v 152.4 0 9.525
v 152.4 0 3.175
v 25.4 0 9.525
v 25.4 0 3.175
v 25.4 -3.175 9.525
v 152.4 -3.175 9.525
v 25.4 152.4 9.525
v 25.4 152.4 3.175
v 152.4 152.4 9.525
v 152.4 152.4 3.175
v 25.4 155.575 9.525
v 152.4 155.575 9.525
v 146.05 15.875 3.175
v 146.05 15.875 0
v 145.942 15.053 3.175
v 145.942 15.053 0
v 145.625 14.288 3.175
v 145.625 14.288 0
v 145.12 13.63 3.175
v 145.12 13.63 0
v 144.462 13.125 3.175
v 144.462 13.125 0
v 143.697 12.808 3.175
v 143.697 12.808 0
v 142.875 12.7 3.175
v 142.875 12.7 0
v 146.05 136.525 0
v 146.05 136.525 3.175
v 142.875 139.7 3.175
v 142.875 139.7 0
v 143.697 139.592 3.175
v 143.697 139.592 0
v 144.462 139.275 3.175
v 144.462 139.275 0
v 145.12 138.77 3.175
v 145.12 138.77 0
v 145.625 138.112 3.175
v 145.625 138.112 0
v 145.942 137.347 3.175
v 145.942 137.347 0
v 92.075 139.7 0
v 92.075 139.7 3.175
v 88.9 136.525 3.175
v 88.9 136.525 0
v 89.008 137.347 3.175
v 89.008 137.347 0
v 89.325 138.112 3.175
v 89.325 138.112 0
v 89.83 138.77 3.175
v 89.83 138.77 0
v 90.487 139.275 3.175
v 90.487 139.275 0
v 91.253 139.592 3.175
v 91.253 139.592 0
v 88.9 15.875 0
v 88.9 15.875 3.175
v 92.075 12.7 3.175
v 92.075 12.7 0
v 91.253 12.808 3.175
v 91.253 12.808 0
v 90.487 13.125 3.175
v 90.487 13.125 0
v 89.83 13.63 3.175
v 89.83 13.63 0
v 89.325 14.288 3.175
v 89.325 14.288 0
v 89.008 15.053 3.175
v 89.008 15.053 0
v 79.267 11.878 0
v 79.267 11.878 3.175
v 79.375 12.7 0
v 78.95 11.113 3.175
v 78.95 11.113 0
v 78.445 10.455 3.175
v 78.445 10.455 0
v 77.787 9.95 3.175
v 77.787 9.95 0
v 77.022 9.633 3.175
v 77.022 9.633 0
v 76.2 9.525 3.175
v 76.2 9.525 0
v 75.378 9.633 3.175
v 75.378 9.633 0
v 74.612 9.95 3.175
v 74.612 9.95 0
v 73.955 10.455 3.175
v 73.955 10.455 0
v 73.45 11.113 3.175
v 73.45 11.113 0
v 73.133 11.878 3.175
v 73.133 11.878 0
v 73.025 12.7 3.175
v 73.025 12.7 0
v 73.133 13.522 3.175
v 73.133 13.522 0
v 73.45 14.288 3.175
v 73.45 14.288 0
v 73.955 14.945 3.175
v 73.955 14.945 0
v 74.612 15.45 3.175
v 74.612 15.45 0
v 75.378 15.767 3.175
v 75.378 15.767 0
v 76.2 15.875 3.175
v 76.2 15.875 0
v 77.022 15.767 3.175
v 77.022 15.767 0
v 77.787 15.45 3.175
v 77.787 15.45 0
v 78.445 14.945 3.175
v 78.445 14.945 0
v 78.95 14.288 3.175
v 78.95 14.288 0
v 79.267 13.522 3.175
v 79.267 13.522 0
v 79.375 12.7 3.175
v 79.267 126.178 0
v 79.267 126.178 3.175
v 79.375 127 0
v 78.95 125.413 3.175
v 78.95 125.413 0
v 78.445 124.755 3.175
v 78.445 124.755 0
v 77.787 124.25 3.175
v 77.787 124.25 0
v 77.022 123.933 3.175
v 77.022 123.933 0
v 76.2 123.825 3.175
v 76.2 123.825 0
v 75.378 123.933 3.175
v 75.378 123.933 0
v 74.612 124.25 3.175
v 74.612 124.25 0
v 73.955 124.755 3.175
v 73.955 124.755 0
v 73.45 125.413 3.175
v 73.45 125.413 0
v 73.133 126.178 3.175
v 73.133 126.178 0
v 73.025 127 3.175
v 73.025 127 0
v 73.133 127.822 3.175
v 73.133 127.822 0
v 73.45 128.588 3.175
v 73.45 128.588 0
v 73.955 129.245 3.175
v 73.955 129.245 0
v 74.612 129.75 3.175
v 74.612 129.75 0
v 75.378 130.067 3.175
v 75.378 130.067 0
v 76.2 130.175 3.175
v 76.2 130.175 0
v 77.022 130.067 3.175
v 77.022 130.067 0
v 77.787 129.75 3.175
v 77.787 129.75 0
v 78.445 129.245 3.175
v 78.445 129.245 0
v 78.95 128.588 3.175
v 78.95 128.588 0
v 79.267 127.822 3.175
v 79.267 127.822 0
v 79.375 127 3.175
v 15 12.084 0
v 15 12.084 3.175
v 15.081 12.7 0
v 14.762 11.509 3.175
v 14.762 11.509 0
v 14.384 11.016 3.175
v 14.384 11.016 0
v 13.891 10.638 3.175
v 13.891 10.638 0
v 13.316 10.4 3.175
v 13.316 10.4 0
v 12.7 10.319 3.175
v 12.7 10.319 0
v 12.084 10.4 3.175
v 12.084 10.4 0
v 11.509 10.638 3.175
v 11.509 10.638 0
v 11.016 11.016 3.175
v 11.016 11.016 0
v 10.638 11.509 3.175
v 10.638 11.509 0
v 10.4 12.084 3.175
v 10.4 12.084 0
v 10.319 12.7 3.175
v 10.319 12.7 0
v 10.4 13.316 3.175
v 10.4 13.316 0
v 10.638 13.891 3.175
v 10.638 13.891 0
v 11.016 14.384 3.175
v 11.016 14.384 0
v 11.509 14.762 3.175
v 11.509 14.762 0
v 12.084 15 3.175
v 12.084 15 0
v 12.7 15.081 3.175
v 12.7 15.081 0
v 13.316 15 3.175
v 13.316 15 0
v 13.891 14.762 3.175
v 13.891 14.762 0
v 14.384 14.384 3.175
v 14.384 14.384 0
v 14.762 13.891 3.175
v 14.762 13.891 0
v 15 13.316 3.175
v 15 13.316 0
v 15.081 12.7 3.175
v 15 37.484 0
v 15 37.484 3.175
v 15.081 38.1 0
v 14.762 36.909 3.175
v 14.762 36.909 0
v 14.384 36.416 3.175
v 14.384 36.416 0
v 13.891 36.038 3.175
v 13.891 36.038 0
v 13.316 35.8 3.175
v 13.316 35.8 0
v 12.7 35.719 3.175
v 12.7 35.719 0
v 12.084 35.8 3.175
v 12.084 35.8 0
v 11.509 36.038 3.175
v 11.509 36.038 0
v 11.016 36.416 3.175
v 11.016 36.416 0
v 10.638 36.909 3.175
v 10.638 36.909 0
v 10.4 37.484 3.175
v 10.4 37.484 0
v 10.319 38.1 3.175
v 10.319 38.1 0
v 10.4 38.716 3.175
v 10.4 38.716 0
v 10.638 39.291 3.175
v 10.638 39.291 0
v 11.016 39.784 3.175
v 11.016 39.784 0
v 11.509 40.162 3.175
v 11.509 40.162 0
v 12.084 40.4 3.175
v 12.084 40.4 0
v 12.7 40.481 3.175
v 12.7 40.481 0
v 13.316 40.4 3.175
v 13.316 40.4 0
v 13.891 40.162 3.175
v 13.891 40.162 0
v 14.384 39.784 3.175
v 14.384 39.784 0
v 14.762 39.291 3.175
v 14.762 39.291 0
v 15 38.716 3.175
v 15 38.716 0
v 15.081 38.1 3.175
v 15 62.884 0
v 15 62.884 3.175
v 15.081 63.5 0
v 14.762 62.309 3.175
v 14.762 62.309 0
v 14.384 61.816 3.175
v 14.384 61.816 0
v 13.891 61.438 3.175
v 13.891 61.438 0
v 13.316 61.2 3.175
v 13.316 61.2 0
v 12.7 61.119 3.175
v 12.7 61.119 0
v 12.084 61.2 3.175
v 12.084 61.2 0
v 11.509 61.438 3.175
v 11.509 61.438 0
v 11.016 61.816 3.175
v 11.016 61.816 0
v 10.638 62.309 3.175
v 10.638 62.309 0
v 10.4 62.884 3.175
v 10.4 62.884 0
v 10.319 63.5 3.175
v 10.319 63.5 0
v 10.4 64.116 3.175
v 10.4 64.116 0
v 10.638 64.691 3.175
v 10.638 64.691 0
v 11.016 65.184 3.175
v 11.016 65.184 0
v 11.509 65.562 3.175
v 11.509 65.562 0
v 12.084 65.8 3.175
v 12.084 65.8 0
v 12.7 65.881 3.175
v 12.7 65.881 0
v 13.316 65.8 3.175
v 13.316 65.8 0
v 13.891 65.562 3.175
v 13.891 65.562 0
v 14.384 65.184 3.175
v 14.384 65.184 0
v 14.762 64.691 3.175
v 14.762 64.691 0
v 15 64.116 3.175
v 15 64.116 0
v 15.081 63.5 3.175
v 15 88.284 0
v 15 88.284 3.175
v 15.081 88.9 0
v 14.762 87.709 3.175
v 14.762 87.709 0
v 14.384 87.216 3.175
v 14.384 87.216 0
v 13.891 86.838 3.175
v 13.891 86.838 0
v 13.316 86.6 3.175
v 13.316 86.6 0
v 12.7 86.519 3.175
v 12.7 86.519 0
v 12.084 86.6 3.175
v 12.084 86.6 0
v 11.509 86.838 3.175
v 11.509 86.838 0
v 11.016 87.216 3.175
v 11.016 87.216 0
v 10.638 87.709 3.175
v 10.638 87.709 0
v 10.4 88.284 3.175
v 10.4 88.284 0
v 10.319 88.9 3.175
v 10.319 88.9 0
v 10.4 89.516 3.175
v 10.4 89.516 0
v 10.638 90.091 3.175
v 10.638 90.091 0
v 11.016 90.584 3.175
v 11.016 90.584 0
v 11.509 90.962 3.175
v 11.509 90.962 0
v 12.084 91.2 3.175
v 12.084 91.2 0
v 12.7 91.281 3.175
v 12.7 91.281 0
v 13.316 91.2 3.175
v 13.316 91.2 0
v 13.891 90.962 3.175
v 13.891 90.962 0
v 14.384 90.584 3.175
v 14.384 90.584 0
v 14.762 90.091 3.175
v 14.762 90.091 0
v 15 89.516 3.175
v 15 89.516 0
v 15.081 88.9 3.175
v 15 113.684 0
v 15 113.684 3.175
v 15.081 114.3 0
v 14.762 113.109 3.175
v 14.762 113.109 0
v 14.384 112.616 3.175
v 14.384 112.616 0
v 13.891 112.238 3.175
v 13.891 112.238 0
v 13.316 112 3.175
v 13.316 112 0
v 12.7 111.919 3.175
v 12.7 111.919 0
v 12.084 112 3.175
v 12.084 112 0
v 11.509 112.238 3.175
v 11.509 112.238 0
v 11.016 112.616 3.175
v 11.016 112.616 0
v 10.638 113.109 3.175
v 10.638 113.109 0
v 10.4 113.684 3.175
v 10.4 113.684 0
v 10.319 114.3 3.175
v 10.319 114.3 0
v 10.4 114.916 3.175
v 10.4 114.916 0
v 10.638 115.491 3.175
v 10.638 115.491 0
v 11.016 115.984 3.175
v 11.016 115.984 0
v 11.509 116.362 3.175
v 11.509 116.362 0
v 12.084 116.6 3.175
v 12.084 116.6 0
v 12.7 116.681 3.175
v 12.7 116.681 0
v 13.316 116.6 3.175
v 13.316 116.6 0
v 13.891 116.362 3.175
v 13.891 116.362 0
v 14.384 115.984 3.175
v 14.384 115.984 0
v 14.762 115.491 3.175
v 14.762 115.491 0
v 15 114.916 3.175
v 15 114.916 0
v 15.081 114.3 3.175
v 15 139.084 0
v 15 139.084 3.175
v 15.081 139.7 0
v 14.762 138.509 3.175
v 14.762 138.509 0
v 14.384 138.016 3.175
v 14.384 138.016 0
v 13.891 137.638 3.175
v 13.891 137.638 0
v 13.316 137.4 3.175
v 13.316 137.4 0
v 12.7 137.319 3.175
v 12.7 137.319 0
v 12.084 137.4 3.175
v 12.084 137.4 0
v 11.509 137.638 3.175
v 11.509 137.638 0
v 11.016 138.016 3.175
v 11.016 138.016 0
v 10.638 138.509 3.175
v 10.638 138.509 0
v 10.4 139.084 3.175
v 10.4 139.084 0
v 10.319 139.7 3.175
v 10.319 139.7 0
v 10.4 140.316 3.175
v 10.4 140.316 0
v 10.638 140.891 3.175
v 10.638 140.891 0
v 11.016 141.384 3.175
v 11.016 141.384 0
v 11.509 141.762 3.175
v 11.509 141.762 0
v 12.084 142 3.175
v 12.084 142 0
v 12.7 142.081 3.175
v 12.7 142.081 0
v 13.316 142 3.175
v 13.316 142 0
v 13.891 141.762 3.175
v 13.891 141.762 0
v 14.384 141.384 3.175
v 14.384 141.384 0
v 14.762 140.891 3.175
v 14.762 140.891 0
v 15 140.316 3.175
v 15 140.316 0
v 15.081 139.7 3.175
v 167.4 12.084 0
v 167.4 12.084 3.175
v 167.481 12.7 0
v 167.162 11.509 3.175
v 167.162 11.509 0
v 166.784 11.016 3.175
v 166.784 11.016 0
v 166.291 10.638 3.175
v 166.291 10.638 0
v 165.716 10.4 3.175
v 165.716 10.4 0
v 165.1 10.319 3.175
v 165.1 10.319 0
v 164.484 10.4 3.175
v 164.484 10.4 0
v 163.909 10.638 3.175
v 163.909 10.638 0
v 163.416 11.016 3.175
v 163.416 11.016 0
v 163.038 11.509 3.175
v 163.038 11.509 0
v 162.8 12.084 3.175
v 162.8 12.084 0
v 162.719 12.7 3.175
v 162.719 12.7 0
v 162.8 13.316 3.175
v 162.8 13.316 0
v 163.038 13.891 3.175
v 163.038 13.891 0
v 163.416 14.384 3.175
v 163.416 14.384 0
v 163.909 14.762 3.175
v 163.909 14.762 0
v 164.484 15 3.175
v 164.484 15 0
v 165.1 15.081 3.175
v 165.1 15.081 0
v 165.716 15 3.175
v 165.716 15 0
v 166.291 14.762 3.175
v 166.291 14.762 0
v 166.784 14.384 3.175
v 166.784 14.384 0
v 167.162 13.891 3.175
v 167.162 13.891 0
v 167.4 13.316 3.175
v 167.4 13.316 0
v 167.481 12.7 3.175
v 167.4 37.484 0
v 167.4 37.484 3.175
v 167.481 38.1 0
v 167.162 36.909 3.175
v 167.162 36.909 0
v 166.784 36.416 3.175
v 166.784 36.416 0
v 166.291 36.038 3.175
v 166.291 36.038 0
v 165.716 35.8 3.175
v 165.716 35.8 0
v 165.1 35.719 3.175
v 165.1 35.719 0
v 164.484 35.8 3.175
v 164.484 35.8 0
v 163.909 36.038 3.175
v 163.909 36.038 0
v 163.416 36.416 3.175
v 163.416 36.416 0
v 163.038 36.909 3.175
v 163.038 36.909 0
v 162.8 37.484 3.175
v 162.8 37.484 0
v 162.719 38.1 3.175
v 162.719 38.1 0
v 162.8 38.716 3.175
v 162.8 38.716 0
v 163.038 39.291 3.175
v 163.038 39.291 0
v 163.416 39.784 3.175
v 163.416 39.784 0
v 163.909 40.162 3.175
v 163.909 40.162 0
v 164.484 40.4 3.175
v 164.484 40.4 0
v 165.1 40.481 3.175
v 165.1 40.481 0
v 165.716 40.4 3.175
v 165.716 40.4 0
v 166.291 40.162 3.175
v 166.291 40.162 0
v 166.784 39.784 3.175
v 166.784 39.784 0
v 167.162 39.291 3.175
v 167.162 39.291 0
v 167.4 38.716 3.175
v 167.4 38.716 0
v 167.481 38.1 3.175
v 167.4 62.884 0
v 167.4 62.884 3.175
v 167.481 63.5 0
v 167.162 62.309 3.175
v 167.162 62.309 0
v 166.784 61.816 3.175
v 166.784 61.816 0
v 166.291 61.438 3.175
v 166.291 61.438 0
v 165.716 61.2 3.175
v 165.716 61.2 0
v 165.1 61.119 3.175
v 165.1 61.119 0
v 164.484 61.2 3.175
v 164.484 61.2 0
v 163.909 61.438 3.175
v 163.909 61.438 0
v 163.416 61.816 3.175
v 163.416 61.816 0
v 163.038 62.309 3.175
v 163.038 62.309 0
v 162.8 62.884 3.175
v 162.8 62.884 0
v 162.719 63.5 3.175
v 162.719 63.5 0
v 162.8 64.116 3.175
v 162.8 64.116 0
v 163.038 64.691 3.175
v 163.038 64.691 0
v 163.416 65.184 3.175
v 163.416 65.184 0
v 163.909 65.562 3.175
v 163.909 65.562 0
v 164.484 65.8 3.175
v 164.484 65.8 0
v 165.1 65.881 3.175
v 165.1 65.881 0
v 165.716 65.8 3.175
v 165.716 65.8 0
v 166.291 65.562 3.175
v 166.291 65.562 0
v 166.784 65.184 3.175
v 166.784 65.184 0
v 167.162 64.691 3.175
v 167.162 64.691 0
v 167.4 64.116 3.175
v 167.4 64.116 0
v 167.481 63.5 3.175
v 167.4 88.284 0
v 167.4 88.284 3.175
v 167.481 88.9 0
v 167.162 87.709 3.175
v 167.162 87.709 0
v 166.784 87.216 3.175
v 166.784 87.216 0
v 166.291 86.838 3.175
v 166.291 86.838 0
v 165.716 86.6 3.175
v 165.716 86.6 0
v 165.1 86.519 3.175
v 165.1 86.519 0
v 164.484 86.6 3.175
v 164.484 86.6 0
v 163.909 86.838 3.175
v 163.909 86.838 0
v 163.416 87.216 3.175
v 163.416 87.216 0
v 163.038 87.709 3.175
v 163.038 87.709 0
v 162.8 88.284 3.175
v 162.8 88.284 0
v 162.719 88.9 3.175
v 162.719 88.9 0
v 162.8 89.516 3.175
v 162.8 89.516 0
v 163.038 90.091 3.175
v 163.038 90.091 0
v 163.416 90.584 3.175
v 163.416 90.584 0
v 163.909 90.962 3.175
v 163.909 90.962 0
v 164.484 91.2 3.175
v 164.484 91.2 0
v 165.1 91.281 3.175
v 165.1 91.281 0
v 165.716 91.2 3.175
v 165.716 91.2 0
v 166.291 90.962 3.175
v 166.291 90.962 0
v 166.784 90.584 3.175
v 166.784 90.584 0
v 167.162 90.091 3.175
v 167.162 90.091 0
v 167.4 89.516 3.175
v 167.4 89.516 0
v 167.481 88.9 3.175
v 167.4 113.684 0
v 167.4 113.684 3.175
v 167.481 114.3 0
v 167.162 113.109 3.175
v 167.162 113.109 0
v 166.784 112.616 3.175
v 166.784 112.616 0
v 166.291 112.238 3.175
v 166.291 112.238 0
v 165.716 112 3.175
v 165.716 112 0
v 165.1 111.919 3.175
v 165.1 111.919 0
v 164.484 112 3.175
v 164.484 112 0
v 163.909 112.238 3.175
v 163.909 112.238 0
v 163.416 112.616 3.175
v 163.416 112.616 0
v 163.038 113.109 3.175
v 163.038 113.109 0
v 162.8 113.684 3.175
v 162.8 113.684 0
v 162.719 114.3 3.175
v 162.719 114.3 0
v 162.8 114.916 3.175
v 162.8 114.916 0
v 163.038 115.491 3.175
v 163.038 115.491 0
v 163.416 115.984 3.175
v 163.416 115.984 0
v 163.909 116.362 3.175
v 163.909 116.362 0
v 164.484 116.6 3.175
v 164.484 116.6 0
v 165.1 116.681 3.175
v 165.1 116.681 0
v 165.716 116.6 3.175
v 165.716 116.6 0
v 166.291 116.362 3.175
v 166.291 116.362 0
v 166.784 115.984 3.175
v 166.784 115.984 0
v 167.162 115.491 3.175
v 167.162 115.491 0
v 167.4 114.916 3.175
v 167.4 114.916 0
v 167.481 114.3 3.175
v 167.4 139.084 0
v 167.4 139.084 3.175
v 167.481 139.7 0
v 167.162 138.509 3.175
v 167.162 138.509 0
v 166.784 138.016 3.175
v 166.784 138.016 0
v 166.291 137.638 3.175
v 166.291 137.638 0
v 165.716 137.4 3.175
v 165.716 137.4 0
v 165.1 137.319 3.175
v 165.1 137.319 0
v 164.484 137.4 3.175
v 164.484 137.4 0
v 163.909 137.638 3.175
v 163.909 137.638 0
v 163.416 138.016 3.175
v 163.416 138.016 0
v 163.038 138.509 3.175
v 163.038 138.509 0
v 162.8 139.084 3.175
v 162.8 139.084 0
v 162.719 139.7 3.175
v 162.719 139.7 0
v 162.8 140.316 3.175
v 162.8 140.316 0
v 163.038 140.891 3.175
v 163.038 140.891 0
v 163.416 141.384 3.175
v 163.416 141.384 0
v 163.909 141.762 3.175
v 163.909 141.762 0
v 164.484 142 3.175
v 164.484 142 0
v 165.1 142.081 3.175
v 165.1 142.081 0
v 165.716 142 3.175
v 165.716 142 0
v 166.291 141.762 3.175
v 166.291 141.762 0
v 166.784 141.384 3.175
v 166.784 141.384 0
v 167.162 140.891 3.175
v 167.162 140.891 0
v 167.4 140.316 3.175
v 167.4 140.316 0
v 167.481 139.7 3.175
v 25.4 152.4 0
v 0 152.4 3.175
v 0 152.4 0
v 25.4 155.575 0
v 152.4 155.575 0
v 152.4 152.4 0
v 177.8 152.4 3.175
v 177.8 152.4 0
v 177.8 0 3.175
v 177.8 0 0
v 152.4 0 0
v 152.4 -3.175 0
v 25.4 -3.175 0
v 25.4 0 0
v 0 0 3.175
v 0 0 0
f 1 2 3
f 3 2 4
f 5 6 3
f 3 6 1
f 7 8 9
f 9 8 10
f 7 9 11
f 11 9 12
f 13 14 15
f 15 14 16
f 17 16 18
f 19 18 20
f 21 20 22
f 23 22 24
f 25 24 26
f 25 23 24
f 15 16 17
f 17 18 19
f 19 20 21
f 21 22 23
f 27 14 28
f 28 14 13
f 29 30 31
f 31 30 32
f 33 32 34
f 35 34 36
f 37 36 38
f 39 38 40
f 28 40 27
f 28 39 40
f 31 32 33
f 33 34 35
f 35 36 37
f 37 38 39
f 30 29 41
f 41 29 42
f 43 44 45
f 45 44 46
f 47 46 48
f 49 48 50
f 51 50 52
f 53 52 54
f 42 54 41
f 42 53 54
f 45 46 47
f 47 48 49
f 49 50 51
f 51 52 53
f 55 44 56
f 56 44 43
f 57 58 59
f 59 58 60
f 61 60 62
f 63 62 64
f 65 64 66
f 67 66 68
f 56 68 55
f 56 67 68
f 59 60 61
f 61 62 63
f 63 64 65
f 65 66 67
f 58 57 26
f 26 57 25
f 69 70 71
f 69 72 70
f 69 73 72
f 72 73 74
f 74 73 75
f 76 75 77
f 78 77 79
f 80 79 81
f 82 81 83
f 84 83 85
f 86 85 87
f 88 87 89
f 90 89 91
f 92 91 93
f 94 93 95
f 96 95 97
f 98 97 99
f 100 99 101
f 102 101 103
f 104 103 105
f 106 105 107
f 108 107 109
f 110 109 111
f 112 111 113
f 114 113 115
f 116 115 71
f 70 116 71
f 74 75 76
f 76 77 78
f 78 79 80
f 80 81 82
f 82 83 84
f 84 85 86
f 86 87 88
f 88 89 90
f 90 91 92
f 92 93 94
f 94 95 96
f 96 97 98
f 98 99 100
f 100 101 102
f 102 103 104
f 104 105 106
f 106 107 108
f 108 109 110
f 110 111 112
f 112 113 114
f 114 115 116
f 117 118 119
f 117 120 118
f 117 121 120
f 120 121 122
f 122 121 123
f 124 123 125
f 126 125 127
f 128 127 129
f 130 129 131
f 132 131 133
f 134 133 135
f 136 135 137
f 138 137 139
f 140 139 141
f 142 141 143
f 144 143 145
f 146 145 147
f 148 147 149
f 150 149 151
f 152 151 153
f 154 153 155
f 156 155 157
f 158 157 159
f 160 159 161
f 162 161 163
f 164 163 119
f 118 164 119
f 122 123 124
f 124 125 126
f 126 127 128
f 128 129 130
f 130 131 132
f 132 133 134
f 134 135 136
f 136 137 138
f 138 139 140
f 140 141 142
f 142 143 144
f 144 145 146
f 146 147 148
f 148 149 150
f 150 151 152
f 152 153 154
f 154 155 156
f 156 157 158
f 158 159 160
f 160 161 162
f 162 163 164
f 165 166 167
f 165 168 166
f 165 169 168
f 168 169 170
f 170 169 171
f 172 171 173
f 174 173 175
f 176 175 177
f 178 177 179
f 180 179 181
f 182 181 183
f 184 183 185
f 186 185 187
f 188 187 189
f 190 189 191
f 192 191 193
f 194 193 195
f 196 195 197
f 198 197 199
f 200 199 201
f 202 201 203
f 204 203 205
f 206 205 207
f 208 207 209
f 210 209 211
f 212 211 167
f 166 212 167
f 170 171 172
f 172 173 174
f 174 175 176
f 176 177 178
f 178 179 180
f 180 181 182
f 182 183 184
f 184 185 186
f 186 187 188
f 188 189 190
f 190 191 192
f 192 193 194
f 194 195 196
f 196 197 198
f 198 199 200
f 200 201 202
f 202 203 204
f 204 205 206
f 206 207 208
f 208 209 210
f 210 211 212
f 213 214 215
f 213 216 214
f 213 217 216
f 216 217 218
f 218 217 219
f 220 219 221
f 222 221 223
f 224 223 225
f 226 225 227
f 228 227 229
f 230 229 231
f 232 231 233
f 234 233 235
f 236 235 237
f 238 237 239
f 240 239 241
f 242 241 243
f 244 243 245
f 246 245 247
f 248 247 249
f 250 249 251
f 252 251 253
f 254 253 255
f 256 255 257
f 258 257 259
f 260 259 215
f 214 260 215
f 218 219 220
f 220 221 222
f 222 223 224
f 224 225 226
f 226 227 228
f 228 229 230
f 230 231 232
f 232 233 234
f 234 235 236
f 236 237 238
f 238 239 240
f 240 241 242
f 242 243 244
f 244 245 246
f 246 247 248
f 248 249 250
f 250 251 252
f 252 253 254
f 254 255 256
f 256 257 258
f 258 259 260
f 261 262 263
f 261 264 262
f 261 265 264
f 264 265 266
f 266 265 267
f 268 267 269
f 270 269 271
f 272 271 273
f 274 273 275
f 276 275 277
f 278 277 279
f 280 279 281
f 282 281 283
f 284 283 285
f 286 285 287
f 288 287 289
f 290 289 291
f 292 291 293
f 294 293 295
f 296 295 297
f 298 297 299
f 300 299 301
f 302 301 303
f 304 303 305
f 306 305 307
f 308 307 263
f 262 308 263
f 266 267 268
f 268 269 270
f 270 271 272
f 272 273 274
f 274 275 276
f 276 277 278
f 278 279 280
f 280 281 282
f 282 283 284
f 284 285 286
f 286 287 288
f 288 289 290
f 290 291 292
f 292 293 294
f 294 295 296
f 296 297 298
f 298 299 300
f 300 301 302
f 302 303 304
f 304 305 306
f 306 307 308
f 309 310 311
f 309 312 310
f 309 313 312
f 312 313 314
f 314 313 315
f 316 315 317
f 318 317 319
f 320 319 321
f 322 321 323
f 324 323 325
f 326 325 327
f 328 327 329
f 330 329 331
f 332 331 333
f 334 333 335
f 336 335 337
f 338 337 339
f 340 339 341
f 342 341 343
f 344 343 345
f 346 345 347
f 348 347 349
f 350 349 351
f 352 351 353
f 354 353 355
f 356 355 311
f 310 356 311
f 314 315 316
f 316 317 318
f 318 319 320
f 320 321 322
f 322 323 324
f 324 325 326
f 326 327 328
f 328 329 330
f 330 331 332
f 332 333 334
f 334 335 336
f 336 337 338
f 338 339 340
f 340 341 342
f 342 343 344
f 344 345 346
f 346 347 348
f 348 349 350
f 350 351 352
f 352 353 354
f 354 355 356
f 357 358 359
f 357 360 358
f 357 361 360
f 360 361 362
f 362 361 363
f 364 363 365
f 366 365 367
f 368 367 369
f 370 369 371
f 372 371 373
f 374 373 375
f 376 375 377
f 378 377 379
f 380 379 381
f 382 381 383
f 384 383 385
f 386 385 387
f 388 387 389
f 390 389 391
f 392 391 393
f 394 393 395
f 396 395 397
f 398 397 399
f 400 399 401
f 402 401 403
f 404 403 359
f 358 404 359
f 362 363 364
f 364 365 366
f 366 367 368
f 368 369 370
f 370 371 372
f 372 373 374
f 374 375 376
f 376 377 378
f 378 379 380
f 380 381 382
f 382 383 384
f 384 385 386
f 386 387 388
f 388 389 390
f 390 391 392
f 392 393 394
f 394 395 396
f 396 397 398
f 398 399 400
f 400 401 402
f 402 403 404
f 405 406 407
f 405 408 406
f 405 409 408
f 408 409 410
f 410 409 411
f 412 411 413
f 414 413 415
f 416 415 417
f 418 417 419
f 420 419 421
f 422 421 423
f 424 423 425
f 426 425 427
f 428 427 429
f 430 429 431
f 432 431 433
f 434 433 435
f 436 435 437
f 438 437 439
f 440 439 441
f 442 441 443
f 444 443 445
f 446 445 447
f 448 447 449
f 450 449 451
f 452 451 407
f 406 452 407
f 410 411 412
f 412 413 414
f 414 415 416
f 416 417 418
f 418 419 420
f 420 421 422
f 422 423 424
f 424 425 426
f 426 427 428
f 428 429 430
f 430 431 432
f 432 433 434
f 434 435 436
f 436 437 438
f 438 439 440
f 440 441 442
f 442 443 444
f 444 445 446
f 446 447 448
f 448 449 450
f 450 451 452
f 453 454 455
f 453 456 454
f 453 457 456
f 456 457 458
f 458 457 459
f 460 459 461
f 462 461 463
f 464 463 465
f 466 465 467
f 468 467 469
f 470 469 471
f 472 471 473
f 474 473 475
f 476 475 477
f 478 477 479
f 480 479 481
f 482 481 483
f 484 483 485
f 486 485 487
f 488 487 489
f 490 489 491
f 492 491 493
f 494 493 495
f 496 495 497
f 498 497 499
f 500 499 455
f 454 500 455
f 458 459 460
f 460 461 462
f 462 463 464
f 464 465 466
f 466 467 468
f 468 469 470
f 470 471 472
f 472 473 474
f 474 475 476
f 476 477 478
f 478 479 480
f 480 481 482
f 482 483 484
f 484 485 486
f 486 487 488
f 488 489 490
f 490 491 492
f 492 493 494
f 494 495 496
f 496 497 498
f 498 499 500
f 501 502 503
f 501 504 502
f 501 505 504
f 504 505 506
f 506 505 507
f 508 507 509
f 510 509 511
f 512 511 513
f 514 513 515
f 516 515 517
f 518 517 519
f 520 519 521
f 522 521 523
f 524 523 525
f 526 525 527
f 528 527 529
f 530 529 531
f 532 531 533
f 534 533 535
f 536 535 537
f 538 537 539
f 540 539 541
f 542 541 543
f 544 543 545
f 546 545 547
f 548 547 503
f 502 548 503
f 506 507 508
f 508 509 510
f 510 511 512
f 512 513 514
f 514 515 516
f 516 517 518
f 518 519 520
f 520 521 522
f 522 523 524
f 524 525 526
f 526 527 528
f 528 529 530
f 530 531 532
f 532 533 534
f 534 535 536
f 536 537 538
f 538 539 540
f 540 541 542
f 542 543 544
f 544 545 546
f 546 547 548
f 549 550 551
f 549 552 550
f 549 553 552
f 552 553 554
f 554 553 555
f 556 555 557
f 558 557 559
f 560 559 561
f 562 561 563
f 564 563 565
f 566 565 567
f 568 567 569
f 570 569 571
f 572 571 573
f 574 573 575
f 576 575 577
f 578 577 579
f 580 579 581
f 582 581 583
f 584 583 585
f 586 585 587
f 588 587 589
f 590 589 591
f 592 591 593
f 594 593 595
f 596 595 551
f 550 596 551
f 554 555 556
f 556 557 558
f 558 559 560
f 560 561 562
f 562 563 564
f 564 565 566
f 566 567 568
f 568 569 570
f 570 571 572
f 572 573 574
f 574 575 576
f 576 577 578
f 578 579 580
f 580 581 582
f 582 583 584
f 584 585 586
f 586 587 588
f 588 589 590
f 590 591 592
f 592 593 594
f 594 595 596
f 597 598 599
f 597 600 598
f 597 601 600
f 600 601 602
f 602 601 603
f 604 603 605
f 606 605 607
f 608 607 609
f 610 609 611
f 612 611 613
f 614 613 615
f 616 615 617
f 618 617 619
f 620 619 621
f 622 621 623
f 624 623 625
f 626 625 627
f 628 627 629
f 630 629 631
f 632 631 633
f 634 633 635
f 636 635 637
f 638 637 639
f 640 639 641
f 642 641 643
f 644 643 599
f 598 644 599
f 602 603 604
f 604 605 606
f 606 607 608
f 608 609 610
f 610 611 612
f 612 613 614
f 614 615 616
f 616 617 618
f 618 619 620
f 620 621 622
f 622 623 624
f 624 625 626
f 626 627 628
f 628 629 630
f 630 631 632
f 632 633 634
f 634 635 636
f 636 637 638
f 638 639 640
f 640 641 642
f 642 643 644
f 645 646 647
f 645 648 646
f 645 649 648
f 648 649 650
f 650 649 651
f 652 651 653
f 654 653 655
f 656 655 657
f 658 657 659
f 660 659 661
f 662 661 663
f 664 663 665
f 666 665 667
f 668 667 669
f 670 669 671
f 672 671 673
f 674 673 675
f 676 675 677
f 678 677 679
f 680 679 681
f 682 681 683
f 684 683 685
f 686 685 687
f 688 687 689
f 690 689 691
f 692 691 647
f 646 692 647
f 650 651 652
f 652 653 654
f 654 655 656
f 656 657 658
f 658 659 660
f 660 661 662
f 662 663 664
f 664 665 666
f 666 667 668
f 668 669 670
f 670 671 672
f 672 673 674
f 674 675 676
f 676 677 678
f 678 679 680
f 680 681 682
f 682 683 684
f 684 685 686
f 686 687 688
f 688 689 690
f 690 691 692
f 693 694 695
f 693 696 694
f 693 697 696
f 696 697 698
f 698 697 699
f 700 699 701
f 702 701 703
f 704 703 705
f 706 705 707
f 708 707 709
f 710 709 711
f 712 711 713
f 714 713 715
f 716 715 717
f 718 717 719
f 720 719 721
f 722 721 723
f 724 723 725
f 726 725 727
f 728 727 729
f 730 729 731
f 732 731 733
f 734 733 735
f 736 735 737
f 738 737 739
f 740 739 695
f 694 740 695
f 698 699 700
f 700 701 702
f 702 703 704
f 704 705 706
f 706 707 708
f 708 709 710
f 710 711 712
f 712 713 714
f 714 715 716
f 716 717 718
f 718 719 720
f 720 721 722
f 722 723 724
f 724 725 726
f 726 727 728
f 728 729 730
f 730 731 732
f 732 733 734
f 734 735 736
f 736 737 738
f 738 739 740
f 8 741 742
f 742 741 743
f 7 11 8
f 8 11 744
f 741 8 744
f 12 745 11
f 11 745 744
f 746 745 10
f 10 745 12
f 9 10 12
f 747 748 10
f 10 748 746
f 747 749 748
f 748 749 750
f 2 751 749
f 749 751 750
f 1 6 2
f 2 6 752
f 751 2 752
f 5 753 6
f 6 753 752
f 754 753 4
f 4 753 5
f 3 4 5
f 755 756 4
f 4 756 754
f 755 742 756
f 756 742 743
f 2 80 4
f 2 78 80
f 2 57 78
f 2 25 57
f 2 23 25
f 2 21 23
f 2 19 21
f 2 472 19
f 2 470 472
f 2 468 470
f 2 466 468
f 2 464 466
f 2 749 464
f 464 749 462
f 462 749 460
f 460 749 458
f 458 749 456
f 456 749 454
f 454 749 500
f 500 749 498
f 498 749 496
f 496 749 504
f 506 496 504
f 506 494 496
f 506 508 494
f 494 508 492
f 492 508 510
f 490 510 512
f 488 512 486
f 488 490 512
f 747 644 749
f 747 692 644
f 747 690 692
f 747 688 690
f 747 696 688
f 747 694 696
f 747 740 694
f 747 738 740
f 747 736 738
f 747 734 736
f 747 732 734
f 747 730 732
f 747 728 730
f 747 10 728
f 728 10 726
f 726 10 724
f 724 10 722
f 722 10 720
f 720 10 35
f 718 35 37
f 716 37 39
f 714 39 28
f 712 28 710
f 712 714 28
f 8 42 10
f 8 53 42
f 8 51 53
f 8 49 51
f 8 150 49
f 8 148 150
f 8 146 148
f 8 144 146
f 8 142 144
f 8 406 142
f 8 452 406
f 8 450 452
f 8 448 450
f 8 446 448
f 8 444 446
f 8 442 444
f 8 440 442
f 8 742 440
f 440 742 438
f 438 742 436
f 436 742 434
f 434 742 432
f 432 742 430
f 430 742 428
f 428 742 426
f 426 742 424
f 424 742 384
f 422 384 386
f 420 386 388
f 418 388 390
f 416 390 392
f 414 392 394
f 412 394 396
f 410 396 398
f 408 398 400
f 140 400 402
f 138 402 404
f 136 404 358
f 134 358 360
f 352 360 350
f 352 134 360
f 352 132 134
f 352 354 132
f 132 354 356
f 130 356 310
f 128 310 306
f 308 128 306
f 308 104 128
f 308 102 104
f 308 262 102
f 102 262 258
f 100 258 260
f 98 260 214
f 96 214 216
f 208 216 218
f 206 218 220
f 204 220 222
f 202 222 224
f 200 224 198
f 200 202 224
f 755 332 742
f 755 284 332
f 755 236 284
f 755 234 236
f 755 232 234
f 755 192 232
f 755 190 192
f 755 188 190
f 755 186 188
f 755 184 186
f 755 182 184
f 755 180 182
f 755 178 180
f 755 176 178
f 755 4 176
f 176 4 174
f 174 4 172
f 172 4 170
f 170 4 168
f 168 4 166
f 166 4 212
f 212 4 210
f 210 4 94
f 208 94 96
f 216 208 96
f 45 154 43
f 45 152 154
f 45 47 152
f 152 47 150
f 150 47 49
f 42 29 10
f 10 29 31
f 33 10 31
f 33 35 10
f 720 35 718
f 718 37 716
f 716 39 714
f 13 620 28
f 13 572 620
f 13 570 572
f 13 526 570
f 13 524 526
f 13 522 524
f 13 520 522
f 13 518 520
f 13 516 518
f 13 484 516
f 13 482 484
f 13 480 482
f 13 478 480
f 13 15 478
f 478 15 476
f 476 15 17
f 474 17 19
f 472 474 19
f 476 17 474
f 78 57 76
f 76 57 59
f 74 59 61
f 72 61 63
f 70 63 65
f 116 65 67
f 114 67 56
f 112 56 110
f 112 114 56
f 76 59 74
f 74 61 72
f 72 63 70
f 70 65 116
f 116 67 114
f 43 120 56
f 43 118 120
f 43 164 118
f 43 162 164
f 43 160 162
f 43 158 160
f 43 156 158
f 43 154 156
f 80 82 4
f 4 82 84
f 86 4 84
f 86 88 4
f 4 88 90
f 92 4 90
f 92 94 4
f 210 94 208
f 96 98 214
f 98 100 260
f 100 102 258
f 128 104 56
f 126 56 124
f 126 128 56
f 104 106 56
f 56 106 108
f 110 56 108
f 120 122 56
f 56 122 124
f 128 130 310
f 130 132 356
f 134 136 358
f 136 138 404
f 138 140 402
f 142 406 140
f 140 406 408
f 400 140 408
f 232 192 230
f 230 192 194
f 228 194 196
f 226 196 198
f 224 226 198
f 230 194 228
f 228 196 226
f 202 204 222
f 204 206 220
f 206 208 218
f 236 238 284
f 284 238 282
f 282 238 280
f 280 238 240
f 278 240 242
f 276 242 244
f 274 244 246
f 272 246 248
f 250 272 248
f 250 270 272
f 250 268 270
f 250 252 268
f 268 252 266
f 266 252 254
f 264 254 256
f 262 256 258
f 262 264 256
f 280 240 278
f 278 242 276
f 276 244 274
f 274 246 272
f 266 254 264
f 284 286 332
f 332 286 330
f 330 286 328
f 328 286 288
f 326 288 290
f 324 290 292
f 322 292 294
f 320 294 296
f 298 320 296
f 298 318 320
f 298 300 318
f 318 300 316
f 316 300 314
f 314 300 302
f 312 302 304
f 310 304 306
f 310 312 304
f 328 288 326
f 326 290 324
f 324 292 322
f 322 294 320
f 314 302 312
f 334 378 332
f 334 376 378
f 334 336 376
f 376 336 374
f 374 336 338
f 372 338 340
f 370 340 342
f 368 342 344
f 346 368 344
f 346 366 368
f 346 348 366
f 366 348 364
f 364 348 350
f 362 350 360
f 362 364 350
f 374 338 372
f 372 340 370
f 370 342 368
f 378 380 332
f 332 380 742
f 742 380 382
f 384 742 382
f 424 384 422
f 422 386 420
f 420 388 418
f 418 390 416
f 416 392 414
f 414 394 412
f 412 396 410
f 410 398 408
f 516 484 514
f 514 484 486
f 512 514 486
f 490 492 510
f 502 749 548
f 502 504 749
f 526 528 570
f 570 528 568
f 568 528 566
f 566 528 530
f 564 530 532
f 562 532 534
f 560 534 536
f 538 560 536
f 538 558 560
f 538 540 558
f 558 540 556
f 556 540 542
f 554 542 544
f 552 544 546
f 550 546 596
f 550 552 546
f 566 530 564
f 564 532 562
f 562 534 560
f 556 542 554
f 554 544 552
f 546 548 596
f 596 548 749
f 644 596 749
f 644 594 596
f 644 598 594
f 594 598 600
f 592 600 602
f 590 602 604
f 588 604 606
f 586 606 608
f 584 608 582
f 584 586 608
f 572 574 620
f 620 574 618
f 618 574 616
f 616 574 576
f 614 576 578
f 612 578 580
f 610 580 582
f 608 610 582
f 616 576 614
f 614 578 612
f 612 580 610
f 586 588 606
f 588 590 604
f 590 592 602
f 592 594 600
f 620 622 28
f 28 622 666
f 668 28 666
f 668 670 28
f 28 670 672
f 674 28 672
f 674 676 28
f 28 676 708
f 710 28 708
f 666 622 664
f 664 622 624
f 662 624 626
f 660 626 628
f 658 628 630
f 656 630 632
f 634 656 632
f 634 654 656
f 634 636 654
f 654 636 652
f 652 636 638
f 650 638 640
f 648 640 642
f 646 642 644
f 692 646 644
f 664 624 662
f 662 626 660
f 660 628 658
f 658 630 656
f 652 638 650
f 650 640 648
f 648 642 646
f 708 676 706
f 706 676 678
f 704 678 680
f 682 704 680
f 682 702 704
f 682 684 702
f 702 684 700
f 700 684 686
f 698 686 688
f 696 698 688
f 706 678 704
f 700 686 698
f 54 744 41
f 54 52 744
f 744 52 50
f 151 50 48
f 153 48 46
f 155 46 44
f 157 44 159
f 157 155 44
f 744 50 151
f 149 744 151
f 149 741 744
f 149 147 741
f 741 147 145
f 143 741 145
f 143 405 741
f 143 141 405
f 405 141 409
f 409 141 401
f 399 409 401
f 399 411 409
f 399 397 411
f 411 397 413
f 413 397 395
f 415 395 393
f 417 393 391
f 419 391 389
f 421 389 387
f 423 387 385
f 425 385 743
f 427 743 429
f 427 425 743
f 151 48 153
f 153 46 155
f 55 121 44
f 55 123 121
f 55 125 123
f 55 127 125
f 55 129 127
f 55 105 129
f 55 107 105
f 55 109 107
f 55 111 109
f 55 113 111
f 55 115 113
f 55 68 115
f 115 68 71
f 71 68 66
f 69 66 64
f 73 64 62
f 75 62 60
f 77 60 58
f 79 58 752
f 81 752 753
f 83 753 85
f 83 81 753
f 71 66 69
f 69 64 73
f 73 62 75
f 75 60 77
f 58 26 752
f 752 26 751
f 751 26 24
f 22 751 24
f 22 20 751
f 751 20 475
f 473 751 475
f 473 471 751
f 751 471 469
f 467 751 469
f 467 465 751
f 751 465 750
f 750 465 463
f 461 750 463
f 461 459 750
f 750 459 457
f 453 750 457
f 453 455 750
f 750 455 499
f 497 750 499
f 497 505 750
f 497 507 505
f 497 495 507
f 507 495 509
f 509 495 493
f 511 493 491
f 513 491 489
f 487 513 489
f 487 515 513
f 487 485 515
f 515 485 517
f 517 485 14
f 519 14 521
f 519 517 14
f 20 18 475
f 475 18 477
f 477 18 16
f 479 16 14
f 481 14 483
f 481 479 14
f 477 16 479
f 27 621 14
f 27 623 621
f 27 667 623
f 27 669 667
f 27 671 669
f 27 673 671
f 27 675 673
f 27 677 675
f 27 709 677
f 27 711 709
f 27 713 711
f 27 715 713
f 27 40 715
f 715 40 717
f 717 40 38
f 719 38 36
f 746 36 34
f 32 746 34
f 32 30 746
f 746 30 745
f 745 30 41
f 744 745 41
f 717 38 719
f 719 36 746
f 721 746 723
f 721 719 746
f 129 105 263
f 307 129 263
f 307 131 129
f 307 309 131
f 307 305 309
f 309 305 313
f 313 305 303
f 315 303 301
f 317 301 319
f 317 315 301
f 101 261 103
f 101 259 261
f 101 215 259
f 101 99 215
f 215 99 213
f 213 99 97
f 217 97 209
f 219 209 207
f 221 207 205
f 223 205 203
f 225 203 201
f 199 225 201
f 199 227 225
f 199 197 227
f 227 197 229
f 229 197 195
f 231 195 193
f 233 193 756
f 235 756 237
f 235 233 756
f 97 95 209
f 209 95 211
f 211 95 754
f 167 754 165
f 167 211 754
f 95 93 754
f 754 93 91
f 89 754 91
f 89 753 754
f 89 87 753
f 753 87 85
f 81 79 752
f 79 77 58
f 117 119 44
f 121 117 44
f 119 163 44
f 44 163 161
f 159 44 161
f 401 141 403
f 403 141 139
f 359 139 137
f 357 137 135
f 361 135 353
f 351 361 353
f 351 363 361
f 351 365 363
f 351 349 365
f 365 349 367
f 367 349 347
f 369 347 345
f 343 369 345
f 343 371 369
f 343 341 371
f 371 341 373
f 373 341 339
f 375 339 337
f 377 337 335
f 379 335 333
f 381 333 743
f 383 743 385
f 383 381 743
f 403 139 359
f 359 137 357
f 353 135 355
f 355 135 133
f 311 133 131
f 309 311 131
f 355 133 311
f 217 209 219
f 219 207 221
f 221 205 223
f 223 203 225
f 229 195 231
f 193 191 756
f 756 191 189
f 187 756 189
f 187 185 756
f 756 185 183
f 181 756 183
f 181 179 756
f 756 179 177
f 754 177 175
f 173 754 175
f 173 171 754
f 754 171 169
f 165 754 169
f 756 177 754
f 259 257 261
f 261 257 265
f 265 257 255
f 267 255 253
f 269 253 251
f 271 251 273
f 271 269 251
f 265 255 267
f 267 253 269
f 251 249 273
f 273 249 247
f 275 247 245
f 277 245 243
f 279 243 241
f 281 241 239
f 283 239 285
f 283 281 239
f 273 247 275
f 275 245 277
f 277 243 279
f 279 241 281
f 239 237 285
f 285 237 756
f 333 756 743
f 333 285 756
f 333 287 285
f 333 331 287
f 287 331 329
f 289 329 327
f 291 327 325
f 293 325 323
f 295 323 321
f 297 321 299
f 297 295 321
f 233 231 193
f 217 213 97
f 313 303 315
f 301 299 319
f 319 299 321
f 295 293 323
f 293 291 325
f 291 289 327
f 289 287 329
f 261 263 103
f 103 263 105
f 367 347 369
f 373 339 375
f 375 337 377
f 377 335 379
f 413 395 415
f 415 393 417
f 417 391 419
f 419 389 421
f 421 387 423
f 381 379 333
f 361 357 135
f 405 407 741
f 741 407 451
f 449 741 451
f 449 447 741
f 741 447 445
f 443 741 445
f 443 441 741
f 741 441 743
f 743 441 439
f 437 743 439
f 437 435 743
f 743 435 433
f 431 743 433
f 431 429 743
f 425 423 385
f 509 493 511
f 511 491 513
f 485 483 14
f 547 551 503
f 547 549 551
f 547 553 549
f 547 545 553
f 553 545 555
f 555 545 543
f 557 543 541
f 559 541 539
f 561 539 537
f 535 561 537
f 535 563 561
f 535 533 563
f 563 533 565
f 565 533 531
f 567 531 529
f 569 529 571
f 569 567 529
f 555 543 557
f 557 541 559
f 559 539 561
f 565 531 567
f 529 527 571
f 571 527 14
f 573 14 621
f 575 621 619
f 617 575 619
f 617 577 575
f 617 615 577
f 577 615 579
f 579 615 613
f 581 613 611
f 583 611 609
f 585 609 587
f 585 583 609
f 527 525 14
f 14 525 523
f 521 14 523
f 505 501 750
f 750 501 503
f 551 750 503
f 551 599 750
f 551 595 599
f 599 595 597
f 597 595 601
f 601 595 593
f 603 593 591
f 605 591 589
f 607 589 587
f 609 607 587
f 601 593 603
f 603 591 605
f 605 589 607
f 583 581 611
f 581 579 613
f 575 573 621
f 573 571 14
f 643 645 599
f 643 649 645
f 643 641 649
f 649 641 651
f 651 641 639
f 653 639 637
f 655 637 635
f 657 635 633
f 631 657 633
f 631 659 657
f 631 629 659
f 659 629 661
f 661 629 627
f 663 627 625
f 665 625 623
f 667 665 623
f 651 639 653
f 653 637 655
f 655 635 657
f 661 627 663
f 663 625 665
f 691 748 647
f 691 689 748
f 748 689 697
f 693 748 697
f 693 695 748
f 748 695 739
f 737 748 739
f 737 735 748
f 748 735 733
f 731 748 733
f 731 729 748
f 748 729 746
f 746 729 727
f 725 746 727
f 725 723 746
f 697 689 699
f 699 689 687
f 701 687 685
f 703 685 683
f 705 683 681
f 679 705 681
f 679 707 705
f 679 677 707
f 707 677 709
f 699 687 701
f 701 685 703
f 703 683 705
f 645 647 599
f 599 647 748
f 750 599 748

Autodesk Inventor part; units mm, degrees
ref_plane "YZ Plane" through (0, 0, 0) normal (1, 0, 0) x (0, 1, 0)
ref_plane "XZ Plane" through (0, 0, 0) normal (0, 1, 0) x (-1, 0, 0)
ref_plane "XY Plane" through (0, 0, 0) normal (0, 0, 1) x (1, 0, 0)
sketch "Sketch1" plane through (0, 0, 0) normal (0, 0, 1) x (1, 0, 0)
  line L0 (177.8, 0) -> (177.8, 152.4)
  line L1 (0, 152.4) -> (0, 0)
  line L2 (152.4, 152.4) -> (152.4, 155.575)
  line L3 (152.4, 155.575) -> (25.4, 155.575)
  line L4 (25.4, 155.575) -> (25.4, 152.4)
  line L5 (0, 152.4) -> (25.4, 152.4)
  line L6 (152.4, 152.4) -> (177.8, 152.4)
  line L7 (152.4, 0) -> (152.4, -3.175)
  line L8 (152.4, -3.175) -> (25.4, -3.175)
  line L9 (25.4, -3.175) -> (25.4, 0)
  line L10 (0, 0) -> (25.4, 0)
  line L11 (152.4, 0) -> (177.8, 0)
  dimension "d0" = 152.4
  dimension "d1" = 177.8
  dimension "d18" = 25.4
  dimension "d19" = 25.4
  dimension "d20" = 3.175
extrude "Extrusion3" add sketch "Sketch1" along normal blind 3.175
sketch "Sketch2" plane through (0, 0, 3.175) normal (0, 0, 1) x (1, 0, 0)
  line L0 (0, 152.4) -> (25.4, 152.4) projected
  line L1 (0, 0) -> (0, 152.4) projected
  line L2 (25.4, 0) -> (0, 0) projected
  line L3 (177.8, 0) -> (152.4, 0) projected
  line L4 (152.4, 152.4) -> (177.8, 152.4) projected
  line L5 (25.4, 152.4) -> (25.4, 155.575) projected
  line L6 (12.7, 152.4) -> (12.7, 139.7) construction
  line L7 (12.7, 139.7) -> (12.7, 114.3) construction
  line L8 (12.7, 114.3) -> (12.7, 88.9) construction
  line L9 (12.7, 88.9) -> (12.7, 63.5) construction
  line L10 (12.7, 63.5) -> (12.7, 38.1) construction
  line L11 (12.7, 38.1) -> (12.7, 12.7) construction
  line L12 (12.7, 12.7) -> (12.7, 0) construction
  circle A0 centre (12.7, 139.7) radius 2.3813
  circle A1 centre (12.7, 114.3) radius 2.3813
  circle A2 centre (12.7, 88.9) radius 2.3813
  circle A3 centre (12.7, 63.5) radius 2.3813
  circle A4 centre (12.7, 38.1) radius 2.3813
  circle A5 centre (12.7, 12.7) radius 2.3813
  line L13 (165.1, 152.4) -> (165.1, 139.7) construction
  line L14 (165.1, 139.7) -> (165.1, 114.3) construction
  line L15 (165.1, 114.3) -> (165.1, 88.9) construction
  line L16 (165.1, 88.9) -> (165.1, 63.5) construction
  line L17 (165.1, 63.5) -> (165.1, 38.1) construction
  line L18 (165.1, 38.1) -> (165.1, 12.7) construction
  line L19 (165.1, 12.7) -> (165.1, 0) construction
  circle A6 centre (165.1, 139.7) radius 2.3813
  circle A7 centre (165.1, 114.3) radius 2.3813
  circle A8 centre (165.1, 88.9) radius 2.3813
  circle A9 centre (165.1, 63.5) radius 2.3813
  circle A10 centre (165.1, 38.1) radius 2.3813
  circle A11 centre (165.1, 12.7) radius 2.3813
  dimension "d26" = 12.7
  dimension "d27" = 25.4
  dimension "d28" = 4.7625
  dimension "d29" = 12.7
  dimension "d30" = 25.4
  dimension "d31" = 4.7625
extrude "Extrusion4" cut sketch "Sketch2" against normal up to next
sketch "Sketch3" plane through (0, 0, 3.175) normal (0, 0, 1) x (1, 0, 0)
  line L0 (0, 0) -> (0, 152.4) projected
  line L1 (25.4, 0) -> (0, 0) projected
  circle A0 centre (76.2, 127) radius 3.175
  circle A1 centre (76.2, 12.7) radius 3.175
  dimension "d34" = 76.2
  dimension "d35" = 76.2
  dimension "d36" = 114.3
  dimension "d37" = 12.7
  dimension "d38" = 6.35
  dimension "d39" = 6.35
extrude "Extrusion5" cut sketch "Sketch3" against normal up to next
sketch "Sketch4" plane through (0, 0, 3.175) normal (0, 0, 1) x (1, 0, 0)
  circle A0 centre (76.2, 127) radius 3.175 projected
  line L0 (177.8, 0) -> (152.4, 0) projected
  line L1 (177.8, 152.4) -> (177.8, 0) projected
  line L2 (152.4, 152.4) -> (177.8, 152.4) projected
  line L3 (92.075, 139.7) -> (142.875, 139.7)
  line L4 (146.05, 136.525) -> (146.05, 15.875)
  line L5 (142.875, 12.7) -> (92.075, 12.7)
  line L6 (88.9, 15.875) -> (88.9, 136.525)
  arc A1 (92.075, 139.7) -> (88.9, 136.525) centre (92.075, 136.525) ccw
  arc A2 (146.05, 136.525) -> (142.875, 139.7) centre (142.875, 136.525) ccw
  arc A3 (142.875, 12.7) -> (146.05, 15.875) centre (142.875, 15.875) ccw
  arc A4 (88.9, 15.875) -> (92.075, 12.7) centre (92.075, 15.875) ccw
  dimension "d42" = 12.7
  dimension "d43" = 31.75
  dimension "d44" = 12.7
  dimension "d45" = 12.7
  dimension "d46" = 3.175
extrude "Extrusion6" cut sketch "Sketch4" against normal up to next contours L3 A2 L4 A3 L5 A4 L6 A1
sketch "Sketch5" plane through (0, 0, 3.175) normal (0, 0, 1) x (1, 0, 0)
  line L0 (25.4, 155.575) -> (152.4, 155.575)
  line L1 (152.4, 155.575) -> (152.4, 152.4)
  line L2 (152.4, 152.4) -> (25.4, 152.4)
  line L3 (25.4, 152.4) -> (25.4, 155.575)
  line L4 (25.4, -3.175) -> (152.4, -3.175)
  line L5 (152.4, -3.175) -> (152.4, 0)
  line L6 (152.4, 0) -> (25.4, 0)
  line L7 (25.4, 0) -> (25.4, -3.175)
extrude "Extrusion7" add sketch "Sketch5" along normal blind 6.35
properties part number "DriveTrain_MotorMount" material "Aluminum-6061"
